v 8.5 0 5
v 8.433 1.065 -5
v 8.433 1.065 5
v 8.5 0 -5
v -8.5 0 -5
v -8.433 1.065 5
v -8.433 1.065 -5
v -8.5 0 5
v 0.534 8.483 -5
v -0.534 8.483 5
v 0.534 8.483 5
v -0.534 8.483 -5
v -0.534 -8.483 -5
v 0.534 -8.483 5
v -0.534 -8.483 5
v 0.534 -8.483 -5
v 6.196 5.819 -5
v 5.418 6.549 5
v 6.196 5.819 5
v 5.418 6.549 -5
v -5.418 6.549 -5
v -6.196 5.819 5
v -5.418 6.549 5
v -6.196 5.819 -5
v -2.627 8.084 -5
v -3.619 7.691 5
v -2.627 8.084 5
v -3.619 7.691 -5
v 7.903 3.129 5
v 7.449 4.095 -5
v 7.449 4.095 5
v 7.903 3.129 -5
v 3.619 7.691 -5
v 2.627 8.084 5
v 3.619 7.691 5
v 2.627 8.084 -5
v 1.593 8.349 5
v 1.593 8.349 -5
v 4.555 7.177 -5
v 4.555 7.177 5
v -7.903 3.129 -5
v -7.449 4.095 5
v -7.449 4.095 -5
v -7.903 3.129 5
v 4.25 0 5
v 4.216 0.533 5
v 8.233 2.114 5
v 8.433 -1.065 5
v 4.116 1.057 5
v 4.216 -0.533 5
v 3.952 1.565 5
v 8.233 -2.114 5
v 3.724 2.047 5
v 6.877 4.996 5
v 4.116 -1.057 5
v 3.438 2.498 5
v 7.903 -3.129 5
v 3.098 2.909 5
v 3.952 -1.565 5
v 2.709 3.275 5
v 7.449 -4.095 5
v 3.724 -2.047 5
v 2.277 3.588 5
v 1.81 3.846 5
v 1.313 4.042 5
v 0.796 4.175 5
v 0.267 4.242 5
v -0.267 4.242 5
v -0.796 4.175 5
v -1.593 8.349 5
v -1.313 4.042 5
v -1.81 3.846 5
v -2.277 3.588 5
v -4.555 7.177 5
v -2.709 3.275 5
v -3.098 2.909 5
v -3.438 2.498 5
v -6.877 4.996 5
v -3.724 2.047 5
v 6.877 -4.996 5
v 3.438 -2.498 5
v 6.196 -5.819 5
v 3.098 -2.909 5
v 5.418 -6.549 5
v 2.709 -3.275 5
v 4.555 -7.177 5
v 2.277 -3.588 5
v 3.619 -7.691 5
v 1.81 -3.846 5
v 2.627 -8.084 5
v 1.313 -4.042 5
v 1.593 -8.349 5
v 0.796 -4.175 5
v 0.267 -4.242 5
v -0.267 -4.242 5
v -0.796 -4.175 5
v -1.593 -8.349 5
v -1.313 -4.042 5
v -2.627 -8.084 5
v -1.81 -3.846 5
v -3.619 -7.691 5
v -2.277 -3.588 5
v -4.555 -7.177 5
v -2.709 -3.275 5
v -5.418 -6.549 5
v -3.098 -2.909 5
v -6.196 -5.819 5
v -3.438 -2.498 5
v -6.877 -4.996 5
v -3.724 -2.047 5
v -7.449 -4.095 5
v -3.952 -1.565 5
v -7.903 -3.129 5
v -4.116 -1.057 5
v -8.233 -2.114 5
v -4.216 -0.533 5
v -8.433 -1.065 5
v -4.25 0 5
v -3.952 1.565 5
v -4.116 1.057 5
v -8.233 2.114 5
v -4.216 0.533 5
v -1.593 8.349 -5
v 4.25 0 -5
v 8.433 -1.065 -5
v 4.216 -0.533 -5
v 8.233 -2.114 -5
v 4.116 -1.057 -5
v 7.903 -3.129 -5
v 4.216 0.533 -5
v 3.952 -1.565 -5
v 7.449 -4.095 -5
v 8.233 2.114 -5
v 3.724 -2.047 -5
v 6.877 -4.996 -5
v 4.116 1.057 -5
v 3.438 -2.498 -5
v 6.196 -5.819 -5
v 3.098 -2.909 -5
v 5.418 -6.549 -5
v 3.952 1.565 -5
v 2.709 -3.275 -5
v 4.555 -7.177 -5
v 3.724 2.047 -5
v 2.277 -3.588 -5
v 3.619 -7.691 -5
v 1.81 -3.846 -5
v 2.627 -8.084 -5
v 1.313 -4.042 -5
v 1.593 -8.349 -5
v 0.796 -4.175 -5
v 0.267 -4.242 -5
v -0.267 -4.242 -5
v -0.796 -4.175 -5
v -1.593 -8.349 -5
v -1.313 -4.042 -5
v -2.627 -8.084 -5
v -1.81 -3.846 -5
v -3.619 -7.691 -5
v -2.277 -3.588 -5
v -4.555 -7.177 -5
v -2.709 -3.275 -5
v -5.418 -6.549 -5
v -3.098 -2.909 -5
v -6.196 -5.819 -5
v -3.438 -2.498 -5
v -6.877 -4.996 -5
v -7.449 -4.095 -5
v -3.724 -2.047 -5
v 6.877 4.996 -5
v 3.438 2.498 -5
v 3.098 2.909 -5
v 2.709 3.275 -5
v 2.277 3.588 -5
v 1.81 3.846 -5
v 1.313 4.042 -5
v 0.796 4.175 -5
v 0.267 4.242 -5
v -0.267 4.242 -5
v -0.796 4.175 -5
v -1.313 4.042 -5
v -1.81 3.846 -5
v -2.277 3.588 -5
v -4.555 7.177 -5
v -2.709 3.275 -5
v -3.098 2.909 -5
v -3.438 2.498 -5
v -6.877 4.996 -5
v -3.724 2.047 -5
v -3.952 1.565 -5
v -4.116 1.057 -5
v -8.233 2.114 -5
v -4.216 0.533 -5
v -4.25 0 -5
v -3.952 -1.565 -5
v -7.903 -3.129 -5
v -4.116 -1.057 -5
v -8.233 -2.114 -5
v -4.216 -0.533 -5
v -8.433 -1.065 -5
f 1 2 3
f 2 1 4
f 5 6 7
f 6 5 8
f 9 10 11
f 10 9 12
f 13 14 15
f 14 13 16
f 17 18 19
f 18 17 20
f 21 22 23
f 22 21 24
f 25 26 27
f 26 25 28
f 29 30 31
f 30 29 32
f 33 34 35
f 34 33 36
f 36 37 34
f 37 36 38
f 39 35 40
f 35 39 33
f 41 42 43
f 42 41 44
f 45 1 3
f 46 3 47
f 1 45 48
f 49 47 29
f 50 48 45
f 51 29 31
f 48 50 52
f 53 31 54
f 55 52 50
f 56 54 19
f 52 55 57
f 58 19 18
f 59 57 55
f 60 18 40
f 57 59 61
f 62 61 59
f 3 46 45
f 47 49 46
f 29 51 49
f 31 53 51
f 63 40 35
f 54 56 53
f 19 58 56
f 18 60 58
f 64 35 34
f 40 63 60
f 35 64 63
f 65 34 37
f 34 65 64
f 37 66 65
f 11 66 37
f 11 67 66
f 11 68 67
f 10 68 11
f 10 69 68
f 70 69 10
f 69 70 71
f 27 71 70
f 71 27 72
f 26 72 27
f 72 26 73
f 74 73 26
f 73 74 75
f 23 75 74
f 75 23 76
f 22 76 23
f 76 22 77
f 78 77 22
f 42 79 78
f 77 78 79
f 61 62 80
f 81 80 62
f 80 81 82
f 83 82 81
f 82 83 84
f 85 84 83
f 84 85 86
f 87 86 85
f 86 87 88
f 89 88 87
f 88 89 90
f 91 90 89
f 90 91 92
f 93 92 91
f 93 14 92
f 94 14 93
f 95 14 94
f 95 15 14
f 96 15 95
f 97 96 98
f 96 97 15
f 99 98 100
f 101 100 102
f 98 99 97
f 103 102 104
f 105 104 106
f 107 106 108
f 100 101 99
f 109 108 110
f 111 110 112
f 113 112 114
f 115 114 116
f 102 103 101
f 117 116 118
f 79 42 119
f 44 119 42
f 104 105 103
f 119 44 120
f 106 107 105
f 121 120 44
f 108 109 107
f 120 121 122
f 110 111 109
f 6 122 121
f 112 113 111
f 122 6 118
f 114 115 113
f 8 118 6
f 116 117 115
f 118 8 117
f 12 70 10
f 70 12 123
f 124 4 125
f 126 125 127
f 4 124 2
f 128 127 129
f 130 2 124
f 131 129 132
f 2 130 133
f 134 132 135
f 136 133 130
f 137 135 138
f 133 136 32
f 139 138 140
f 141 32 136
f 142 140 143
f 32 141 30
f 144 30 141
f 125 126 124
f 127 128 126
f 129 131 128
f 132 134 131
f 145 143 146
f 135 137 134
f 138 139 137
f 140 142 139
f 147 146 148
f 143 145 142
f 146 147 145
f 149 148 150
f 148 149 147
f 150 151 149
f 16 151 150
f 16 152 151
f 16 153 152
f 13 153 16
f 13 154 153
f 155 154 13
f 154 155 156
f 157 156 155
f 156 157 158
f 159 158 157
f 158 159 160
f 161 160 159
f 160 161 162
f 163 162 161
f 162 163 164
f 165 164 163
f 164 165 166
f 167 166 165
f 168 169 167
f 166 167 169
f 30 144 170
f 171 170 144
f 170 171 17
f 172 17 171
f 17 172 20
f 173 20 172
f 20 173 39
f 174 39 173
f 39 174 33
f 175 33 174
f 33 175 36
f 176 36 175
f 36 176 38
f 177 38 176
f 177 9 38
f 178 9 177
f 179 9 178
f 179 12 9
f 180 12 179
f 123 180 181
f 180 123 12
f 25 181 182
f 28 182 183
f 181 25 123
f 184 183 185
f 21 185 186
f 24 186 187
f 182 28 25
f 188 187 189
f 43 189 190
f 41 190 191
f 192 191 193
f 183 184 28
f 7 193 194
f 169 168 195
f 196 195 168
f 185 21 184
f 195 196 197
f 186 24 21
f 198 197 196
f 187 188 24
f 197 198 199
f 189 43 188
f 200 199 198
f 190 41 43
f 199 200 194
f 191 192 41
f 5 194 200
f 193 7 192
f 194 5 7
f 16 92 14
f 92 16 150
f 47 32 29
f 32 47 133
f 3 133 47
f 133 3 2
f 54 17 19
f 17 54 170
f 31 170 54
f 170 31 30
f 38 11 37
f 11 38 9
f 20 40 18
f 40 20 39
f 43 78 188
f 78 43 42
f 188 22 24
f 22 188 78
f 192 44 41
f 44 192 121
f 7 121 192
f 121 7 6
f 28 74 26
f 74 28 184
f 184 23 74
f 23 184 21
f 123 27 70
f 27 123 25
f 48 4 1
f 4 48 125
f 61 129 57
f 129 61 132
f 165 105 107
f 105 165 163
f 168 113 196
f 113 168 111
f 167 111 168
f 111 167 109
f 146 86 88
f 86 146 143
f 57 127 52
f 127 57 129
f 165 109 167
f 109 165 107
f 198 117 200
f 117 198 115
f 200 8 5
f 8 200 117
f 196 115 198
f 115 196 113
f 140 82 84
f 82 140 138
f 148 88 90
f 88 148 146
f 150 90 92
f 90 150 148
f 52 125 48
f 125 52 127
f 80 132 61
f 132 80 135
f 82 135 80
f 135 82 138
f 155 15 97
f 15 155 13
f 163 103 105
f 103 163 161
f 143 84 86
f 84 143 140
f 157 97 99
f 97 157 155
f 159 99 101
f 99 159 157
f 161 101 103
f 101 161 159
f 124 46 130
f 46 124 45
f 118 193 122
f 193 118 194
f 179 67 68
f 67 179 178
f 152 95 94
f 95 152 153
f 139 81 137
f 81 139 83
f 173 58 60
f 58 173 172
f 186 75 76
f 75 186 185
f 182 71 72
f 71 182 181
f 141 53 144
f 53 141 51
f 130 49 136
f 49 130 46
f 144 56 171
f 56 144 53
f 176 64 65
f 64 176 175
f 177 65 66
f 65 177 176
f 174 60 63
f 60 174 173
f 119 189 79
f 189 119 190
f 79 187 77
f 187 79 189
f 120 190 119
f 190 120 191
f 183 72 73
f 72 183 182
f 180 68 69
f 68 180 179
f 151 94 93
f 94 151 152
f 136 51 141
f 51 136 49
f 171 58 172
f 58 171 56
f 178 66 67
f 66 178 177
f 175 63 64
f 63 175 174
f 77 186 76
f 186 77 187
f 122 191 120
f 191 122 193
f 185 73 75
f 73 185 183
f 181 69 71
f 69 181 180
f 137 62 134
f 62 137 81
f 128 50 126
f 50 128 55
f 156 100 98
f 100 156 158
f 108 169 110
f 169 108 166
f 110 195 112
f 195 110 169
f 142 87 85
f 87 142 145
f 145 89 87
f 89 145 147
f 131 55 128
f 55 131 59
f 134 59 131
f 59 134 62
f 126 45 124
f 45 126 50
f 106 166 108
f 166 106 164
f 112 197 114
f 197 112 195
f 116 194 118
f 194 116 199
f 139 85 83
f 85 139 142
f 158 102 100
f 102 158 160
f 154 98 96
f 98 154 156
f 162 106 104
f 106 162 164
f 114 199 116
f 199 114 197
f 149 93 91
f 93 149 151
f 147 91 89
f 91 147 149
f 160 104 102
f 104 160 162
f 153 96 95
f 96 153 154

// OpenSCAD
$fn = 50;


difference() {
	union() {
		translate(v = [0, 0, -5.0000000000]) {
			cylinder(h = 10, r = 8.5000000000);
		}
	}
	union() {
		translate(v = [0, 0, -100.0000000000]) {
			cylinder(h = 200, r = 4.2500000000);
		}
	}
}
